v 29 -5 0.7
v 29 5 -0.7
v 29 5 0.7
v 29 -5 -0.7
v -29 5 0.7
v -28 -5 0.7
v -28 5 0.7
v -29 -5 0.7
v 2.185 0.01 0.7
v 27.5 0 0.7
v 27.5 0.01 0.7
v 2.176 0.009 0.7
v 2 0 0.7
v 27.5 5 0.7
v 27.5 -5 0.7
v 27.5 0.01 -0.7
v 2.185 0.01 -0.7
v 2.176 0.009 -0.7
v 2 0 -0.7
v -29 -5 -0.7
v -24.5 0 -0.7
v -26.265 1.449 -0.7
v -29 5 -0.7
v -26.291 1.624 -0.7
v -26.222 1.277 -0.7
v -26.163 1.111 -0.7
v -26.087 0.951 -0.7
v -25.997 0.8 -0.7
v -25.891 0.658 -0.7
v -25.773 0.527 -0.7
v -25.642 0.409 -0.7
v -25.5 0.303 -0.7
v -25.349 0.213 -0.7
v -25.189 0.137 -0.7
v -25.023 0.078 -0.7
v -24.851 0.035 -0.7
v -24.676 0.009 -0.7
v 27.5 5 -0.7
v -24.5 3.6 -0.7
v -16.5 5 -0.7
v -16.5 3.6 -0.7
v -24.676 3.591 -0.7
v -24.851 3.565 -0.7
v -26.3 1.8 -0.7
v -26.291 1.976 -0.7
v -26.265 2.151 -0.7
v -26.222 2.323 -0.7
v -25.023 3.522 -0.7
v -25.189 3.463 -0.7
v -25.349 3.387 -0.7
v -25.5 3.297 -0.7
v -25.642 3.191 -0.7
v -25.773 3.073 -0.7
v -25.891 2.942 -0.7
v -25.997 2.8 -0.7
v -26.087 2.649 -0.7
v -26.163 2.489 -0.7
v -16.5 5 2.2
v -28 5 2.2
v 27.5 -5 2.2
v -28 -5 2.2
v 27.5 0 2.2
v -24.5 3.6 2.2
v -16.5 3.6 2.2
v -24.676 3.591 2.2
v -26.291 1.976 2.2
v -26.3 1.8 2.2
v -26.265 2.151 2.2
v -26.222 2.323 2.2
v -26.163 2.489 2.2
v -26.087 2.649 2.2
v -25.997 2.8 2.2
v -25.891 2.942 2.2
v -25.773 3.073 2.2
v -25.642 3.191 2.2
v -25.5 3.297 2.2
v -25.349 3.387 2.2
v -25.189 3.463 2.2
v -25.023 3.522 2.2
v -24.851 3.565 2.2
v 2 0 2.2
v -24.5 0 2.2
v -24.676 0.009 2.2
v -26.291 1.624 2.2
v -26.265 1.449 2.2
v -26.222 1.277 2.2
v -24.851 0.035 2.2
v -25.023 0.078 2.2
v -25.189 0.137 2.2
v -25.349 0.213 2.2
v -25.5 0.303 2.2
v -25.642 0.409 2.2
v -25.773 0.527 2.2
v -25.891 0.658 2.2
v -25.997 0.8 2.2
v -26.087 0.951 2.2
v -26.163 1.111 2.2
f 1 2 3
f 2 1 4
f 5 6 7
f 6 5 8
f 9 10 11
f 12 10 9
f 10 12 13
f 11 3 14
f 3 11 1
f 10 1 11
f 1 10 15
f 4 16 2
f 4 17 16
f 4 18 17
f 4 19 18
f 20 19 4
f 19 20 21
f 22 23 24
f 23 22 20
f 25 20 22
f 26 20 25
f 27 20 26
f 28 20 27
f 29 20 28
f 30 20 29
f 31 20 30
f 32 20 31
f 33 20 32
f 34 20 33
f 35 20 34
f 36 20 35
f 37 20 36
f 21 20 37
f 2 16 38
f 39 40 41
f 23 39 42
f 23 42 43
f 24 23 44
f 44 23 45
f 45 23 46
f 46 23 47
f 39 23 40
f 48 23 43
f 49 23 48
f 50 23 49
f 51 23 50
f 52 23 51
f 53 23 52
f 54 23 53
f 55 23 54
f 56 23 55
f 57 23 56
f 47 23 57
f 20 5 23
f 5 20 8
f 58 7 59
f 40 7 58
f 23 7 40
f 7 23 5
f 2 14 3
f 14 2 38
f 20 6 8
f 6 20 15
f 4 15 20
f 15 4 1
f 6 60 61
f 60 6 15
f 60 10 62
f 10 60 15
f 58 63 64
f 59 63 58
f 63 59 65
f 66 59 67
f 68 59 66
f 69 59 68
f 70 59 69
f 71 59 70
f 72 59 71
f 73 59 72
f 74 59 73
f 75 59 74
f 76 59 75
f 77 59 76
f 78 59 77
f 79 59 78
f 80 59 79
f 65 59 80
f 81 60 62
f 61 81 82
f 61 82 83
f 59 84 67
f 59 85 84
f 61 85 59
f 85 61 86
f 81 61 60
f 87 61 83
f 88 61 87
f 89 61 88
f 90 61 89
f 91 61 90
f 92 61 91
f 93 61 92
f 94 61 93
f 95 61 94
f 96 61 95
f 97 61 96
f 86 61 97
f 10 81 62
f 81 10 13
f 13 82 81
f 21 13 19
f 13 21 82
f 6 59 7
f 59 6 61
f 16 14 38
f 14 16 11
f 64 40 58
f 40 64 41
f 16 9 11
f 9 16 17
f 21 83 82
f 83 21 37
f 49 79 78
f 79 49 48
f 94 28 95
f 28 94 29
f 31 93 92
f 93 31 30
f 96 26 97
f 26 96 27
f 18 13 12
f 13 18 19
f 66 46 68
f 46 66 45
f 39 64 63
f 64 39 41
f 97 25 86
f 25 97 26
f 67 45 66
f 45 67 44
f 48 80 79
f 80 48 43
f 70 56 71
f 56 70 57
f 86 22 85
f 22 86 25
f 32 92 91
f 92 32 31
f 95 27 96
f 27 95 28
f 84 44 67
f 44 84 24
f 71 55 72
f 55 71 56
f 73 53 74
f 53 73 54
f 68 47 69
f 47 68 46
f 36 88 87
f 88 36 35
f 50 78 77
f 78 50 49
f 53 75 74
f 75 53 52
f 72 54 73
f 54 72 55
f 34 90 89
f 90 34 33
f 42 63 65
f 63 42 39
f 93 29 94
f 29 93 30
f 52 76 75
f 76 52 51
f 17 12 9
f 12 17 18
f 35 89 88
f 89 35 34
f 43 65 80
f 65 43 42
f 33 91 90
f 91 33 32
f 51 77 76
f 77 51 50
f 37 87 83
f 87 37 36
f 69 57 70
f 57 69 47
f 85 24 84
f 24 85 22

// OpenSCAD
$fn=64;
epsilon=0.01;

module cover() {
  difference() {
    union() {
      cube(size=[58, 10, 1.4], center=true);
      translate([0, -2.5, 0.95])
        cube(size=[55, 5, 2.5], center=true);
      translate([-22, 0, 0.95]) 
        cube(size=[12, 10, 2.5], center=true);
    }

    translate([5.5, 2.5 + epsilon, 0]) 
      cube(size=[44, 5, 5], center=true);

    translate([-24.5, 1.8, 0]) hull() {
      cylinder(r=1.8, h=10, center=true);
      translate([26.5, 0, 0])
        cylinder(r=1.8, h=10, center=true);
    }
  }
}

cover();
